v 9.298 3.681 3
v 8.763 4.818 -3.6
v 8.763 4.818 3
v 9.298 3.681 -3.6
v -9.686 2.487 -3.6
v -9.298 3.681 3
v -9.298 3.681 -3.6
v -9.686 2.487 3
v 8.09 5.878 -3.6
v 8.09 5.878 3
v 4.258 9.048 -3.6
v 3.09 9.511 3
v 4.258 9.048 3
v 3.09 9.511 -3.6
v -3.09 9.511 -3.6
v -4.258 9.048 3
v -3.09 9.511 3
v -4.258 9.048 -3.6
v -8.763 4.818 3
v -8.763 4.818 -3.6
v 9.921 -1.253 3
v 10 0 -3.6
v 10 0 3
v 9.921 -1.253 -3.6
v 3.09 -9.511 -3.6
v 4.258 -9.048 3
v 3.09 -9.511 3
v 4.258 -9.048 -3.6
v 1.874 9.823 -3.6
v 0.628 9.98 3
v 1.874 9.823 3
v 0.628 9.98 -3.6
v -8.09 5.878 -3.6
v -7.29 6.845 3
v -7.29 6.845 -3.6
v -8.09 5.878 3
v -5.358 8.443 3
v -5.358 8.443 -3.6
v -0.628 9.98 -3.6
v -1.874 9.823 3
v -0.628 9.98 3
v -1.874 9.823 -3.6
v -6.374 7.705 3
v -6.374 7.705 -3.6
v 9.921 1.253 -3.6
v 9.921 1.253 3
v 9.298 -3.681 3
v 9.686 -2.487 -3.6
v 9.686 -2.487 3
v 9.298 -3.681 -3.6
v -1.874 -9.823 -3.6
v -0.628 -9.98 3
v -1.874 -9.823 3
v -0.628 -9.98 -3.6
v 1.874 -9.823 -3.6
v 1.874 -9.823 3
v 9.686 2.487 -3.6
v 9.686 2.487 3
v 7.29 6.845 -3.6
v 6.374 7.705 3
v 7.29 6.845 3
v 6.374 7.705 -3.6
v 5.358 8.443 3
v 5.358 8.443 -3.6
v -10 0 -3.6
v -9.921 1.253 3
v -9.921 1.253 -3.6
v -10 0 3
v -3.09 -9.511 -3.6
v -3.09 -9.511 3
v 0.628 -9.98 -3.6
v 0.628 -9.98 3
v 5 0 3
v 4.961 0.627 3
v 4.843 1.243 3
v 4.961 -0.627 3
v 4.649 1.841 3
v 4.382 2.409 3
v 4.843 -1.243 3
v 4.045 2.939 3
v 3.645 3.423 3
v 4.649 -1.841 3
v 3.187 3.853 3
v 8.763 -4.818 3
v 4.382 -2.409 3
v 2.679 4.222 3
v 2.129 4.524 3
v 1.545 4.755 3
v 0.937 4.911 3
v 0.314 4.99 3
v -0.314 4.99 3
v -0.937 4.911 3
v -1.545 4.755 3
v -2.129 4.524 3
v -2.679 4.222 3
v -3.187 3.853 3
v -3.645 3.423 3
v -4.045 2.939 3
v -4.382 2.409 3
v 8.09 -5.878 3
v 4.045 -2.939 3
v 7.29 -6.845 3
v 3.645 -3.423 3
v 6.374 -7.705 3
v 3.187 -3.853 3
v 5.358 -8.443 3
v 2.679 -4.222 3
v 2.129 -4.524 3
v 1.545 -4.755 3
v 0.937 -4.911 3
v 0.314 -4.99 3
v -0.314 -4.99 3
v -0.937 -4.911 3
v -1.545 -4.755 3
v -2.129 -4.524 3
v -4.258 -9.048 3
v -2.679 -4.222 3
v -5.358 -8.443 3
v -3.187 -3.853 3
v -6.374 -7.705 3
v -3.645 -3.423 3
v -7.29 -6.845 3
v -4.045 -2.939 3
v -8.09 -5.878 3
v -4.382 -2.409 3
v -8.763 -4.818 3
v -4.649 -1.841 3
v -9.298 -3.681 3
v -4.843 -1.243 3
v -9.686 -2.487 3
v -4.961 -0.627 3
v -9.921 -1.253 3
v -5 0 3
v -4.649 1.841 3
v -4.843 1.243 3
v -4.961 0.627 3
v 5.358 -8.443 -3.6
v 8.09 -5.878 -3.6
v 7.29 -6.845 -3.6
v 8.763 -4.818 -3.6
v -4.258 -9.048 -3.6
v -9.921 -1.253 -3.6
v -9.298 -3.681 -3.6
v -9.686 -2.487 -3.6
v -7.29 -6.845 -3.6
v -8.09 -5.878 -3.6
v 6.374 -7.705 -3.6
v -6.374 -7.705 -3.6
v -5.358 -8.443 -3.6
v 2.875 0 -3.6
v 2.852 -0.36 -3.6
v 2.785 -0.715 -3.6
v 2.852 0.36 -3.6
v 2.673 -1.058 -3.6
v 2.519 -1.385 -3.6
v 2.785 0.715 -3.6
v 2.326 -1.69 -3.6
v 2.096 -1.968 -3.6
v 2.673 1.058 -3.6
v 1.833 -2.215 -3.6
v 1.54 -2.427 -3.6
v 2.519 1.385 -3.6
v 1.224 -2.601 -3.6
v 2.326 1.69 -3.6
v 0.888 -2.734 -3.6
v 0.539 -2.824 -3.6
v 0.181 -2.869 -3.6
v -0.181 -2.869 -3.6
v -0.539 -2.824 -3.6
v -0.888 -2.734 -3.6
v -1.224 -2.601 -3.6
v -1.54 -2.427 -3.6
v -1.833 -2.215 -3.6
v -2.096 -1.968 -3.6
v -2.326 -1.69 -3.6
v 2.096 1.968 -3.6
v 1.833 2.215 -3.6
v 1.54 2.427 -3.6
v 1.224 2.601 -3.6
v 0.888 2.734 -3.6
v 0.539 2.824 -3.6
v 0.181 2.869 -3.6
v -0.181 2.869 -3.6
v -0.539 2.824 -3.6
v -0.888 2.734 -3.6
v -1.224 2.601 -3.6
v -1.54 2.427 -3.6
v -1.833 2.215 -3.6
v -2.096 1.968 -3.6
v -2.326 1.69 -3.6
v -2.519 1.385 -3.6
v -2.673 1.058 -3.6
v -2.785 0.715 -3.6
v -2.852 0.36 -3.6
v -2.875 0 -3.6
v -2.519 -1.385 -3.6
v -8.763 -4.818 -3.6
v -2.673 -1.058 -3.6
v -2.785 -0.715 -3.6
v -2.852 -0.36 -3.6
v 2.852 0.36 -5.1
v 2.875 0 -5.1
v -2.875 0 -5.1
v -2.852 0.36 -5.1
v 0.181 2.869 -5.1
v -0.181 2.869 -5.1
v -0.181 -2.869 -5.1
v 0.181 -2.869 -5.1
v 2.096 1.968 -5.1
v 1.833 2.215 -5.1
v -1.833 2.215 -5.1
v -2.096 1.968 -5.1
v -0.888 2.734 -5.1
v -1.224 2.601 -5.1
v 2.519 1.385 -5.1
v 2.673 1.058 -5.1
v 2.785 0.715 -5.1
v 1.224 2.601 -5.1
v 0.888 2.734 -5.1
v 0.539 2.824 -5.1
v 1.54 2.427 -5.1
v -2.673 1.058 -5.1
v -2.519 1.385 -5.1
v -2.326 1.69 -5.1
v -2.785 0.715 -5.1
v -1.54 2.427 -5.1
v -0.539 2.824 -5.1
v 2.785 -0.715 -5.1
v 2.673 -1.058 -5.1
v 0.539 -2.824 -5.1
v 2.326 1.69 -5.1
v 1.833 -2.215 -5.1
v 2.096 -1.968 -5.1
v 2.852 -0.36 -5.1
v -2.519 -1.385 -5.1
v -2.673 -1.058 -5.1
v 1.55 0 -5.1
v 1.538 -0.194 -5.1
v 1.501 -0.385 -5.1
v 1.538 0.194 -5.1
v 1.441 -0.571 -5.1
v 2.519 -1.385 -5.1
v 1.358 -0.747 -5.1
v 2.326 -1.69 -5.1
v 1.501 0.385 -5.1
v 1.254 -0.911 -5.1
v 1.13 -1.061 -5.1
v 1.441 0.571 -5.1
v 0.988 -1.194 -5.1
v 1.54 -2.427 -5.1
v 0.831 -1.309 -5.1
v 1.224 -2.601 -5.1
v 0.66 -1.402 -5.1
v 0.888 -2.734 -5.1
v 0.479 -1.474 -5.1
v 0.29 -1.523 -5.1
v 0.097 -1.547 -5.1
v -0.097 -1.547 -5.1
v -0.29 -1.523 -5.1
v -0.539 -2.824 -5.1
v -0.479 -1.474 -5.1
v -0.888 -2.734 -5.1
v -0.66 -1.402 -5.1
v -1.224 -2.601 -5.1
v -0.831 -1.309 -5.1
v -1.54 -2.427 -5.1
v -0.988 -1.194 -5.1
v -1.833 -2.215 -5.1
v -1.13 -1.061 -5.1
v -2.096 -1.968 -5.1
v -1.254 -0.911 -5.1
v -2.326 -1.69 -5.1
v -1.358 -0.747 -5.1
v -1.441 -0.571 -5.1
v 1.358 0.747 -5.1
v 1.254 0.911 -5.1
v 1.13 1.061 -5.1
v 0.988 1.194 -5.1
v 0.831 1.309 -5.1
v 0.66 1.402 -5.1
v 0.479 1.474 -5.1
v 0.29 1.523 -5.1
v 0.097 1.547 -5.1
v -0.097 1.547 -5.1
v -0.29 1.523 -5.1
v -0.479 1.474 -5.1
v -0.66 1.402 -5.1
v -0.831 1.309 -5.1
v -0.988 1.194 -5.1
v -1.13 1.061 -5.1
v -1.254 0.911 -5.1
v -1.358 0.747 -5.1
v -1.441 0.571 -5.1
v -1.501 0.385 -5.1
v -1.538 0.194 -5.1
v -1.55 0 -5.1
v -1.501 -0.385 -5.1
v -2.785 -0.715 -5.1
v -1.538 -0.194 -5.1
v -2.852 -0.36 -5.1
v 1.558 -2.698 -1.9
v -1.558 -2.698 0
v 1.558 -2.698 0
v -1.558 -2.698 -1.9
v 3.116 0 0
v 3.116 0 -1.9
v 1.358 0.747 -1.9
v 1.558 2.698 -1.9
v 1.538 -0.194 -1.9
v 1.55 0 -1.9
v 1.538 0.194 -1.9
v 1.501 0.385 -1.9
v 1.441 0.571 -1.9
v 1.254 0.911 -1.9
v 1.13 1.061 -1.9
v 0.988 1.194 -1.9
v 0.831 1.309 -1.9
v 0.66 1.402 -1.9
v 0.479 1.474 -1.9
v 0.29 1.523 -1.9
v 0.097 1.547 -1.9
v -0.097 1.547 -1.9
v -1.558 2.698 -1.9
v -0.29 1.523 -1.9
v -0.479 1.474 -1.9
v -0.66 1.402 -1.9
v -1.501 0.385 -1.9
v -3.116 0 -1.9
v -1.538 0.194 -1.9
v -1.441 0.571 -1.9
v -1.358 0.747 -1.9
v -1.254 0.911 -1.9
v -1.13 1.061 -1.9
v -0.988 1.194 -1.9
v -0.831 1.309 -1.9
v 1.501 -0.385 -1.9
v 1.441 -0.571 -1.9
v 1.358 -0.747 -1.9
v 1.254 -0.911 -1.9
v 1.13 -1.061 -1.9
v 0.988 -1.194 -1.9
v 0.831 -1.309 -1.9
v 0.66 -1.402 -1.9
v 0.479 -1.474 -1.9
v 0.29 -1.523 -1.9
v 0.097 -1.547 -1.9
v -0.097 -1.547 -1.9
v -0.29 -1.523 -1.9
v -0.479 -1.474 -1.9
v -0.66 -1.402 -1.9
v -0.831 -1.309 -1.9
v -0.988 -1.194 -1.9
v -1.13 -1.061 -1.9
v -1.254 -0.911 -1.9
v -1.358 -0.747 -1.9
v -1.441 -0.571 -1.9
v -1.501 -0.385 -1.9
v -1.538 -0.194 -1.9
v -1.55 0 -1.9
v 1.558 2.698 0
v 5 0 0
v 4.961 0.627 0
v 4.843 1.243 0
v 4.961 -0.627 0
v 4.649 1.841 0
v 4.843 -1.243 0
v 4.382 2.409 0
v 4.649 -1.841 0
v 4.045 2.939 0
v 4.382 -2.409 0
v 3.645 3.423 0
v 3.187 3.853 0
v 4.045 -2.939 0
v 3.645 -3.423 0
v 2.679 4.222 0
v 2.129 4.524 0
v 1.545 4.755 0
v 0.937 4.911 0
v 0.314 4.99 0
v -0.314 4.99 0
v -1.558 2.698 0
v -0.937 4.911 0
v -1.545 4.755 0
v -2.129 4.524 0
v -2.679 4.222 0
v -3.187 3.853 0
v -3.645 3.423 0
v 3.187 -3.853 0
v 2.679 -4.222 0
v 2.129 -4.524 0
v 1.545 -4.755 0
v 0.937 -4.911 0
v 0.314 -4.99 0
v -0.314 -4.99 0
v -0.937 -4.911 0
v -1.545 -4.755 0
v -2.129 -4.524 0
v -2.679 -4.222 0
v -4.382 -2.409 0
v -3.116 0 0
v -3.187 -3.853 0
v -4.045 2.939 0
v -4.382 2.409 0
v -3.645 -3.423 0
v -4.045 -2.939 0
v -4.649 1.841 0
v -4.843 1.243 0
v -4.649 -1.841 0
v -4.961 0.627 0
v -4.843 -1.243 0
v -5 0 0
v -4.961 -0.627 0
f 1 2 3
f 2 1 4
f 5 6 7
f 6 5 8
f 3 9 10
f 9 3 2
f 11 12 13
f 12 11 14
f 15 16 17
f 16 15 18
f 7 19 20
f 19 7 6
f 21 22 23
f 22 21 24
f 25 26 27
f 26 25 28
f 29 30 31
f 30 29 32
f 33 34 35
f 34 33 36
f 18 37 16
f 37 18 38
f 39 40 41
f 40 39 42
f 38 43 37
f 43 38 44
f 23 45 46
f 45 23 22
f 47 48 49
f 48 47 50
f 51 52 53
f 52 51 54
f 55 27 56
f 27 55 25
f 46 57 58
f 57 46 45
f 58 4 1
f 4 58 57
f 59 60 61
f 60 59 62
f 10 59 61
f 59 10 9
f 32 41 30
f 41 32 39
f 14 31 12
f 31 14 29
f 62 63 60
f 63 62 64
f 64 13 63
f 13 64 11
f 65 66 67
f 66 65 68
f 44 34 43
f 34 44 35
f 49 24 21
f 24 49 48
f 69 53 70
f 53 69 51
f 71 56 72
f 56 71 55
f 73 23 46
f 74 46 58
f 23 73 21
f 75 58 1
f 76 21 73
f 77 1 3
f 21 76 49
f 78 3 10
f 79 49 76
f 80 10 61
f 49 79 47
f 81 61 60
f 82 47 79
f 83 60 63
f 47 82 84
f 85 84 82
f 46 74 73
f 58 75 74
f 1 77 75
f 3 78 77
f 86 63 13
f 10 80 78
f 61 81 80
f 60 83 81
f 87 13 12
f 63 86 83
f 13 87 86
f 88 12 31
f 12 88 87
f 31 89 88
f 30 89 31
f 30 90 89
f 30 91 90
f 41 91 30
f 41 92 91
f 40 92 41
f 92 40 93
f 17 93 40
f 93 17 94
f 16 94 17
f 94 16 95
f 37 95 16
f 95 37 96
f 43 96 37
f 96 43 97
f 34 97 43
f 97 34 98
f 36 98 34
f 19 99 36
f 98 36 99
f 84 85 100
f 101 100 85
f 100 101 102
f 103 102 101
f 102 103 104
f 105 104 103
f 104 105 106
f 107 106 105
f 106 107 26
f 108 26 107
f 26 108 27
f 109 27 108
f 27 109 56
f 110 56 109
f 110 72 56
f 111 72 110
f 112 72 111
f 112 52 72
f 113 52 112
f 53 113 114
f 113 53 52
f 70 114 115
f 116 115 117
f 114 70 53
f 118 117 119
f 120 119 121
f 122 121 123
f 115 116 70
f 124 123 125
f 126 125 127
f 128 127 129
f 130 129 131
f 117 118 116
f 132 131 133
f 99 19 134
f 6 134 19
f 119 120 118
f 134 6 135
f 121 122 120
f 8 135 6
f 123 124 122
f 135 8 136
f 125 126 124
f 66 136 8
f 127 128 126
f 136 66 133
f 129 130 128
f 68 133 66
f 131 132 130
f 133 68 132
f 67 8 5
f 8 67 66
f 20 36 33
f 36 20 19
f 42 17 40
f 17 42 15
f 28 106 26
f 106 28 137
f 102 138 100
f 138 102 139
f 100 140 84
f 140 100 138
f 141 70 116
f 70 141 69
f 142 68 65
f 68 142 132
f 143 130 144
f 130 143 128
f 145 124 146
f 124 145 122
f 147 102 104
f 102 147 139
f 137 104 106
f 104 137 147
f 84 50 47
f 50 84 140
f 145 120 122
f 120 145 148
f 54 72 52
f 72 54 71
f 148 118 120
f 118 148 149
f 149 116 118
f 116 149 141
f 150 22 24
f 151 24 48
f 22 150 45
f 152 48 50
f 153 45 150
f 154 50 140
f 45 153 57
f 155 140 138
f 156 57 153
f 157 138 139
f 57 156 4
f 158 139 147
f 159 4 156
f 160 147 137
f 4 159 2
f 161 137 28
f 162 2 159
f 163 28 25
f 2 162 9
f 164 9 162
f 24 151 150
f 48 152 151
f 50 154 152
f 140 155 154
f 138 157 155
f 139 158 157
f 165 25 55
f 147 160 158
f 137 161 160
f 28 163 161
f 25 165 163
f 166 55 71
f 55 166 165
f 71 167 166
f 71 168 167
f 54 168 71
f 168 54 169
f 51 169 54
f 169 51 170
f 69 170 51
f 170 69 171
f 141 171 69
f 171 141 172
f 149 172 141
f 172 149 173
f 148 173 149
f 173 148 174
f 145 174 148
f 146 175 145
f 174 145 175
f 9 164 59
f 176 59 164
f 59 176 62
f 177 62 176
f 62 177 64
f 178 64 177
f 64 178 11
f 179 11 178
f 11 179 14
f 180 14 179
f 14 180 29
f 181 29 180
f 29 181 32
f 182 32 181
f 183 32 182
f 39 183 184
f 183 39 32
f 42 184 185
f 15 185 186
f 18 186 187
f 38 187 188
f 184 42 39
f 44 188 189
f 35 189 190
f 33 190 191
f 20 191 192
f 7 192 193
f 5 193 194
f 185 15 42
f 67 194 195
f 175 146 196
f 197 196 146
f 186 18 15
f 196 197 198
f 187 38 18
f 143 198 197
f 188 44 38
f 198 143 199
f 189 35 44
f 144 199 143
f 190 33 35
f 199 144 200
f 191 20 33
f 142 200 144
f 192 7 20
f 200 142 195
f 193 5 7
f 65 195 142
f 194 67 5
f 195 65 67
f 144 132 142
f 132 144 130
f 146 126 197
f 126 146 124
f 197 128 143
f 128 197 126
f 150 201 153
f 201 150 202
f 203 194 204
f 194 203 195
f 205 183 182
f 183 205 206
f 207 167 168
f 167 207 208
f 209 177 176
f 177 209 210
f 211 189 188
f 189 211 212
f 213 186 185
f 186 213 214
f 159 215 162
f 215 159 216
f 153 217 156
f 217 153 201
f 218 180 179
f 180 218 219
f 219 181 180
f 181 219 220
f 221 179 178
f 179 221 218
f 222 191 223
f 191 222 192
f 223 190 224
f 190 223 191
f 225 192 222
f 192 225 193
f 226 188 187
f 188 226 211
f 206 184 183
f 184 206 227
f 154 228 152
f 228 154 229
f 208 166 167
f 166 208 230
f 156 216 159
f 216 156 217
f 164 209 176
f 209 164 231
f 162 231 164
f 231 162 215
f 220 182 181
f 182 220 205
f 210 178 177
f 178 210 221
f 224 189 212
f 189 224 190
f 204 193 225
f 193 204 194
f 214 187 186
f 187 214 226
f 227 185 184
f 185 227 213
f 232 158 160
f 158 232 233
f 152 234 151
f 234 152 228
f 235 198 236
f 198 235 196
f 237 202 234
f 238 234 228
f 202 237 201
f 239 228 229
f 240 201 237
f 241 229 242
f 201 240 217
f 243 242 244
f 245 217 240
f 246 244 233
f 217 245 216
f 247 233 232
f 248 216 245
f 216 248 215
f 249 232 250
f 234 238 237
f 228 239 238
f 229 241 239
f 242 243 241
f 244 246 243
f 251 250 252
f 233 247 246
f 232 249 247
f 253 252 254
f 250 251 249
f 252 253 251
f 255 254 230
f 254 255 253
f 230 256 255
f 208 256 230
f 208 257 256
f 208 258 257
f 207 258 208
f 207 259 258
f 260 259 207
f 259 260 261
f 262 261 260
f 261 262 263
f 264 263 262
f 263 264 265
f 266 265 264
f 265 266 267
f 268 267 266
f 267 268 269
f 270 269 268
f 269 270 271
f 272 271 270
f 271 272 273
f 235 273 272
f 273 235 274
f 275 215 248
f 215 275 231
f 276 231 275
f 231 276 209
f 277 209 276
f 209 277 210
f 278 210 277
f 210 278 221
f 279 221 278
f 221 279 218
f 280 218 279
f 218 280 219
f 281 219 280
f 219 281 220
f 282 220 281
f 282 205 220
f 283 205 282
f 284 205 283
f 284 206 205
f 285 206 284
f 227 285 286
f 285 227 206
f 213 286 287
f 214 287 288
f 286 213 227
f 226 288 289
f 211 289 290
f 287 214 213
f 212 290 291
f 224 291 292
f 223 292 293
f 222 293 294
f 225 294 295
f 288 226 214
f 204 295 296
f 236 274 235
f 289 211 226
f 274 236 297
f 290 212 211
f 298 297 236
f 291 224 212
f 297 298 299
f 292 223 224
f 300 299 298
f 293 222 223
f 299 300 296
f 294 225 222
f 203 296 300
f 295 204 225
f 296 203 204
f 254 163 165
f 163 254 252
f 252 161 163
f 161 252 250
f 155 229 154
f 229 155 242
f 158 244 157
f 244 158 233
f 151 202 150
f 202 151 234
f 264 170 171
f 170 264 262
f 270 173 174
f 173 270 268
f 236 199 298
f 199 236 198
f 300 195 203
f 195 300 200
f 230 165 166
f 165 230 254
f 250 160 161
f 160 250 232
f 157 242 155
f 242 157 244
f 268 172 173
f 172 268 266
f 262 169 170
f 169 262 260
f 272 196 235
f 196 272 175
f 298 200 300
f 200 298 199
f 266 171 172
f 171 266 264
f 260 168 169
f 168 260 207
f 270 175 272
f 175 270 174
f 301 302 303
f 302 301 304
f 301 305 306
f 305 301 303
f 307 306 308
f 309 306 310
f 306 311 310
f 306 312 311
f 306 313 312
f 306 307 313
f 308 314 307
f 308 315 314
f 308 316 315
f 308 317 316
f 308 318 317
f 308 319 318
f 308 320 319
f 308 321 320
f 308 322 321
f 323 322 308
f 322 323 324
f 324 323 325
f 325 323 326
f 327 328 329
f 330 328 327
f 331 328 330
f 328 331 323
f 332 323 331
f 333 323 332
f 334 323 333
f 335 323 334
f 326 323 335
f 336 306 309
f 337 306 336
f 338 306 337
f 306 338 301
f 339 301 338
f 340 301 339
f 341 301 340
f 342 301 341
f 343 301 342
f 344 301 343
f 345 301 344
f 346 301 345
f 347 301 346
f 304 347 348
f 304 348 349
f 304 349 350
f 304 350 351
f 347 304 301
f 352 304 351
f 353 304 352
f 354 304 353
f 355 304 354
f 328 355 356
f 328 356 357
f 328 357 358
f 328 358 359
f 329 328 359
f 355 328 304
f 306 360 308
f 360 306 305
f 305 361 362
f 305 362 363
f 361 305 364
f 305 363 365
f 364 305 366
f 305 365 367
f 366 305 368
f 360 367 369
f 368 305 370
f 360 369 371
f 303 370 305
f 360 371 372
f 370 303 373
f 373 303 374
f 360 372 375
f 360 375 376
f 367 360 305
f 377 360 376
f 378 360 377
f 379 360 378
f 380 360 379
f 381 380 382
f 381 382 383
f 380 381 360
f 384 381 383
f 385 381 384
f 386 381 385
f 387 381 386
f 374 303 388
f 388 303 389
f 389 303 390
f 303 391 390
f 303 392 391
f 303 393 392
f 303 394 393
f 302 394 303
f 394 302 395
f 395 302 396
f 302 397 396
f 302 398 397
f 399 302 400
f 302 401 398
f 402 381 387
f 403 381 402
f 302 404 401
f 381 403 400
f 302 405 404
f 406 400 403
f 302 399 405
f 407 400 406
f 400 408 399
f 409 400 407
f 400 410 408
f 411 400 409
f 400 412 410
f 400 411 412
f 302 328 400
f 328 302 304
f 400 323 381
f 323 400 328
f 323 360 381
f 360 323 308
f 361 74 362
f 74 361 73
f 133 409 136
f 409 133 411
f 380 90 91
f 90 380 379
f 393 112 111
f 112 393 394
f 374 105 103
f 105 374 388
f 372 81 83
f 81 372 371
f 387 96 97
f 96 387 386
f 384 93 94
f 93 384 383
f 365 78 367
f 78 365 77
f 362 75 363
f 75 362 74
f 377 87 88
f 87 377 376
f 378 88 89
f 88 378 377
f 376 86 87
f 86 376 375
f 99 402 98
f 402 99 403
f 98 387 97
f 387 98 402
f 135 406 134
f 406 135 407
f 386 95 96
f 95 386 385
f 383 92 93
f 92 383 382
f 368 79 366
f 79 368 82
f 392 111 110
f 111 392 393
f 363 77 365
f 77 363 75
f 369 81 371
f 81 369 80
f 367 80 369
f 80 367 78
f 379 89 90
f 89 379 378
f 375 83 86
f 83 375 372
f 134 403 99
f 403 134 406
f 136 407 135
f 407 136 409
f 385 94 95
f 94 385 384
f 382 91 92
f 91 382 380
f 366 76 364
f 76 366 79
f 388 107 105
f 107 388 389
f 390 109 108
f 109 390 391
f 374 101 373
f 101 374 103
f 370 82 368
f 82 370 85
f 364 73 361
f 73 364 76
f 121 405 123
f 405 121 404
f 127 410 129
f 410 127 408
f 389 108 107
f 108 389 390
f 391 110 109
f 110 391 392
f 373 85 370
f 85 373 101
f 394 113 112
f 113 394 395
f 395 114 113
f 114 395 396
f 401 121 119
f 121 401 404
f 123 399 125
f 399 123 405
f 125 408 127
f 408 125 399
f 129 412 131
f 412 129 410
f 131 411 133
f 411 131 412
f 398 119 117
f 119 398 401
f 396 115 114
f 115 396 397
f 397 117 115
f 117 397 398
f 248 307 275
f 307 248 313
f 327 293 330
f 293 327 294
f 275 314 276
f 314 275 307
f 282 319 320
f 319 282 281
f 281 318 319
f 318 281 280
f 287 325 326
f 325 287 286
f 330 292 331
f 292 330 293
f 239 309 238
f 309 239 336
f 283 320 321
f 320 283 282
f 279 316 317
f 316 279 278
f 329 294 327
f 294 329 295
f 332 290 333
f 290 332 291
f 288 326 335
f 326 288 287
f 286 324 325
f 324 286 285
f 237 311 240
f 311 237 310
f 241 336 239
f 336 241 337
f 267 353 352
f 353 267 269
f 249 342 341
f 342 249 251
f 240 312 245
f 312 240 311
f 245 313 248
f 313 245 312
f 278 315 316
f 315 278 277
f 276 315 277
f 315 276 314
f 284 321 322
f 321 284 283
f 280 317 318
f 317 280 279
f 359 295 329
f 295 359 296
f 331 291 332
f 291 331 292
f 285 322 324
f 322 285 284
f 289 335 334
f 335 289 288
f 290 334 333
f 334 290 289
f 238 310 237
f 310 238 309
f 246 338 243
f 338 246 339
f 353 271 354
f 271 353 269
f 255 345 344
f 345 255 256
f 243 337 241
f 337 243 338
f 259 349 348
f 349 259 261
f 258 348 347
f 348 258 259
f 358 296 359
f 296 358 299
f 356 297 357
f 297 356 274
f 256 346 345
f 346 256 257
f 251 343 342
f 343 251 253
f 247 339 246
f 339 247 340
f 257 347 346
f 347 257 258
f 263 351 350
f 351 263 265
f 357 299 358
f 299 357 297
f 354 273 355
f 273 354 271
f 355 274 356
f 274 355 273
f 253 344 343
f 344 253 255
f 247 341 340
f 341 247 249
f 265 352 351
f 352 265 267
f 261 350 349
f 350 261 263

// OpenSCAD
$fn = 50;


difference() {
	union() {
		translate(v = [0, 0, -3.6000000000]) {
			cylinder(h = 6.6000000000, r = 10.0000000000);
		}
		#translate(v = [0, 0, -5.1000000000]) {
			cylinder(h = 5.1000000000, r = 2.8750000000);
		}
	}
	union() {
		translate(v = [0, 0, 0]) {
			rotate(a = [0, 0, 0]) {
				difference() {
					union() {
						translate(v = [0, 0, -1.9000000000]) {
							linear_extrude(height = 1.9000000000) {
								polygon(points = [[3.1158000000, 0.0000000000], [1.5579000000, 2.6983619531], [-1.5579000000, 2.6983619531], [-3.1158000000, 0.0000000000], [-1.5579000000, -2.6983619531], [1.5579000000, -2.6983619531]]);
							}
						}
					}
					union();
				}
			}
		}
		#cylinder(h = 3, r = 5.0000000000);
		#translate(v = [0, 0, -100.0000000000]) {
			cylinder(h = 200, r = 1.5500000000);
		}
	}
}
